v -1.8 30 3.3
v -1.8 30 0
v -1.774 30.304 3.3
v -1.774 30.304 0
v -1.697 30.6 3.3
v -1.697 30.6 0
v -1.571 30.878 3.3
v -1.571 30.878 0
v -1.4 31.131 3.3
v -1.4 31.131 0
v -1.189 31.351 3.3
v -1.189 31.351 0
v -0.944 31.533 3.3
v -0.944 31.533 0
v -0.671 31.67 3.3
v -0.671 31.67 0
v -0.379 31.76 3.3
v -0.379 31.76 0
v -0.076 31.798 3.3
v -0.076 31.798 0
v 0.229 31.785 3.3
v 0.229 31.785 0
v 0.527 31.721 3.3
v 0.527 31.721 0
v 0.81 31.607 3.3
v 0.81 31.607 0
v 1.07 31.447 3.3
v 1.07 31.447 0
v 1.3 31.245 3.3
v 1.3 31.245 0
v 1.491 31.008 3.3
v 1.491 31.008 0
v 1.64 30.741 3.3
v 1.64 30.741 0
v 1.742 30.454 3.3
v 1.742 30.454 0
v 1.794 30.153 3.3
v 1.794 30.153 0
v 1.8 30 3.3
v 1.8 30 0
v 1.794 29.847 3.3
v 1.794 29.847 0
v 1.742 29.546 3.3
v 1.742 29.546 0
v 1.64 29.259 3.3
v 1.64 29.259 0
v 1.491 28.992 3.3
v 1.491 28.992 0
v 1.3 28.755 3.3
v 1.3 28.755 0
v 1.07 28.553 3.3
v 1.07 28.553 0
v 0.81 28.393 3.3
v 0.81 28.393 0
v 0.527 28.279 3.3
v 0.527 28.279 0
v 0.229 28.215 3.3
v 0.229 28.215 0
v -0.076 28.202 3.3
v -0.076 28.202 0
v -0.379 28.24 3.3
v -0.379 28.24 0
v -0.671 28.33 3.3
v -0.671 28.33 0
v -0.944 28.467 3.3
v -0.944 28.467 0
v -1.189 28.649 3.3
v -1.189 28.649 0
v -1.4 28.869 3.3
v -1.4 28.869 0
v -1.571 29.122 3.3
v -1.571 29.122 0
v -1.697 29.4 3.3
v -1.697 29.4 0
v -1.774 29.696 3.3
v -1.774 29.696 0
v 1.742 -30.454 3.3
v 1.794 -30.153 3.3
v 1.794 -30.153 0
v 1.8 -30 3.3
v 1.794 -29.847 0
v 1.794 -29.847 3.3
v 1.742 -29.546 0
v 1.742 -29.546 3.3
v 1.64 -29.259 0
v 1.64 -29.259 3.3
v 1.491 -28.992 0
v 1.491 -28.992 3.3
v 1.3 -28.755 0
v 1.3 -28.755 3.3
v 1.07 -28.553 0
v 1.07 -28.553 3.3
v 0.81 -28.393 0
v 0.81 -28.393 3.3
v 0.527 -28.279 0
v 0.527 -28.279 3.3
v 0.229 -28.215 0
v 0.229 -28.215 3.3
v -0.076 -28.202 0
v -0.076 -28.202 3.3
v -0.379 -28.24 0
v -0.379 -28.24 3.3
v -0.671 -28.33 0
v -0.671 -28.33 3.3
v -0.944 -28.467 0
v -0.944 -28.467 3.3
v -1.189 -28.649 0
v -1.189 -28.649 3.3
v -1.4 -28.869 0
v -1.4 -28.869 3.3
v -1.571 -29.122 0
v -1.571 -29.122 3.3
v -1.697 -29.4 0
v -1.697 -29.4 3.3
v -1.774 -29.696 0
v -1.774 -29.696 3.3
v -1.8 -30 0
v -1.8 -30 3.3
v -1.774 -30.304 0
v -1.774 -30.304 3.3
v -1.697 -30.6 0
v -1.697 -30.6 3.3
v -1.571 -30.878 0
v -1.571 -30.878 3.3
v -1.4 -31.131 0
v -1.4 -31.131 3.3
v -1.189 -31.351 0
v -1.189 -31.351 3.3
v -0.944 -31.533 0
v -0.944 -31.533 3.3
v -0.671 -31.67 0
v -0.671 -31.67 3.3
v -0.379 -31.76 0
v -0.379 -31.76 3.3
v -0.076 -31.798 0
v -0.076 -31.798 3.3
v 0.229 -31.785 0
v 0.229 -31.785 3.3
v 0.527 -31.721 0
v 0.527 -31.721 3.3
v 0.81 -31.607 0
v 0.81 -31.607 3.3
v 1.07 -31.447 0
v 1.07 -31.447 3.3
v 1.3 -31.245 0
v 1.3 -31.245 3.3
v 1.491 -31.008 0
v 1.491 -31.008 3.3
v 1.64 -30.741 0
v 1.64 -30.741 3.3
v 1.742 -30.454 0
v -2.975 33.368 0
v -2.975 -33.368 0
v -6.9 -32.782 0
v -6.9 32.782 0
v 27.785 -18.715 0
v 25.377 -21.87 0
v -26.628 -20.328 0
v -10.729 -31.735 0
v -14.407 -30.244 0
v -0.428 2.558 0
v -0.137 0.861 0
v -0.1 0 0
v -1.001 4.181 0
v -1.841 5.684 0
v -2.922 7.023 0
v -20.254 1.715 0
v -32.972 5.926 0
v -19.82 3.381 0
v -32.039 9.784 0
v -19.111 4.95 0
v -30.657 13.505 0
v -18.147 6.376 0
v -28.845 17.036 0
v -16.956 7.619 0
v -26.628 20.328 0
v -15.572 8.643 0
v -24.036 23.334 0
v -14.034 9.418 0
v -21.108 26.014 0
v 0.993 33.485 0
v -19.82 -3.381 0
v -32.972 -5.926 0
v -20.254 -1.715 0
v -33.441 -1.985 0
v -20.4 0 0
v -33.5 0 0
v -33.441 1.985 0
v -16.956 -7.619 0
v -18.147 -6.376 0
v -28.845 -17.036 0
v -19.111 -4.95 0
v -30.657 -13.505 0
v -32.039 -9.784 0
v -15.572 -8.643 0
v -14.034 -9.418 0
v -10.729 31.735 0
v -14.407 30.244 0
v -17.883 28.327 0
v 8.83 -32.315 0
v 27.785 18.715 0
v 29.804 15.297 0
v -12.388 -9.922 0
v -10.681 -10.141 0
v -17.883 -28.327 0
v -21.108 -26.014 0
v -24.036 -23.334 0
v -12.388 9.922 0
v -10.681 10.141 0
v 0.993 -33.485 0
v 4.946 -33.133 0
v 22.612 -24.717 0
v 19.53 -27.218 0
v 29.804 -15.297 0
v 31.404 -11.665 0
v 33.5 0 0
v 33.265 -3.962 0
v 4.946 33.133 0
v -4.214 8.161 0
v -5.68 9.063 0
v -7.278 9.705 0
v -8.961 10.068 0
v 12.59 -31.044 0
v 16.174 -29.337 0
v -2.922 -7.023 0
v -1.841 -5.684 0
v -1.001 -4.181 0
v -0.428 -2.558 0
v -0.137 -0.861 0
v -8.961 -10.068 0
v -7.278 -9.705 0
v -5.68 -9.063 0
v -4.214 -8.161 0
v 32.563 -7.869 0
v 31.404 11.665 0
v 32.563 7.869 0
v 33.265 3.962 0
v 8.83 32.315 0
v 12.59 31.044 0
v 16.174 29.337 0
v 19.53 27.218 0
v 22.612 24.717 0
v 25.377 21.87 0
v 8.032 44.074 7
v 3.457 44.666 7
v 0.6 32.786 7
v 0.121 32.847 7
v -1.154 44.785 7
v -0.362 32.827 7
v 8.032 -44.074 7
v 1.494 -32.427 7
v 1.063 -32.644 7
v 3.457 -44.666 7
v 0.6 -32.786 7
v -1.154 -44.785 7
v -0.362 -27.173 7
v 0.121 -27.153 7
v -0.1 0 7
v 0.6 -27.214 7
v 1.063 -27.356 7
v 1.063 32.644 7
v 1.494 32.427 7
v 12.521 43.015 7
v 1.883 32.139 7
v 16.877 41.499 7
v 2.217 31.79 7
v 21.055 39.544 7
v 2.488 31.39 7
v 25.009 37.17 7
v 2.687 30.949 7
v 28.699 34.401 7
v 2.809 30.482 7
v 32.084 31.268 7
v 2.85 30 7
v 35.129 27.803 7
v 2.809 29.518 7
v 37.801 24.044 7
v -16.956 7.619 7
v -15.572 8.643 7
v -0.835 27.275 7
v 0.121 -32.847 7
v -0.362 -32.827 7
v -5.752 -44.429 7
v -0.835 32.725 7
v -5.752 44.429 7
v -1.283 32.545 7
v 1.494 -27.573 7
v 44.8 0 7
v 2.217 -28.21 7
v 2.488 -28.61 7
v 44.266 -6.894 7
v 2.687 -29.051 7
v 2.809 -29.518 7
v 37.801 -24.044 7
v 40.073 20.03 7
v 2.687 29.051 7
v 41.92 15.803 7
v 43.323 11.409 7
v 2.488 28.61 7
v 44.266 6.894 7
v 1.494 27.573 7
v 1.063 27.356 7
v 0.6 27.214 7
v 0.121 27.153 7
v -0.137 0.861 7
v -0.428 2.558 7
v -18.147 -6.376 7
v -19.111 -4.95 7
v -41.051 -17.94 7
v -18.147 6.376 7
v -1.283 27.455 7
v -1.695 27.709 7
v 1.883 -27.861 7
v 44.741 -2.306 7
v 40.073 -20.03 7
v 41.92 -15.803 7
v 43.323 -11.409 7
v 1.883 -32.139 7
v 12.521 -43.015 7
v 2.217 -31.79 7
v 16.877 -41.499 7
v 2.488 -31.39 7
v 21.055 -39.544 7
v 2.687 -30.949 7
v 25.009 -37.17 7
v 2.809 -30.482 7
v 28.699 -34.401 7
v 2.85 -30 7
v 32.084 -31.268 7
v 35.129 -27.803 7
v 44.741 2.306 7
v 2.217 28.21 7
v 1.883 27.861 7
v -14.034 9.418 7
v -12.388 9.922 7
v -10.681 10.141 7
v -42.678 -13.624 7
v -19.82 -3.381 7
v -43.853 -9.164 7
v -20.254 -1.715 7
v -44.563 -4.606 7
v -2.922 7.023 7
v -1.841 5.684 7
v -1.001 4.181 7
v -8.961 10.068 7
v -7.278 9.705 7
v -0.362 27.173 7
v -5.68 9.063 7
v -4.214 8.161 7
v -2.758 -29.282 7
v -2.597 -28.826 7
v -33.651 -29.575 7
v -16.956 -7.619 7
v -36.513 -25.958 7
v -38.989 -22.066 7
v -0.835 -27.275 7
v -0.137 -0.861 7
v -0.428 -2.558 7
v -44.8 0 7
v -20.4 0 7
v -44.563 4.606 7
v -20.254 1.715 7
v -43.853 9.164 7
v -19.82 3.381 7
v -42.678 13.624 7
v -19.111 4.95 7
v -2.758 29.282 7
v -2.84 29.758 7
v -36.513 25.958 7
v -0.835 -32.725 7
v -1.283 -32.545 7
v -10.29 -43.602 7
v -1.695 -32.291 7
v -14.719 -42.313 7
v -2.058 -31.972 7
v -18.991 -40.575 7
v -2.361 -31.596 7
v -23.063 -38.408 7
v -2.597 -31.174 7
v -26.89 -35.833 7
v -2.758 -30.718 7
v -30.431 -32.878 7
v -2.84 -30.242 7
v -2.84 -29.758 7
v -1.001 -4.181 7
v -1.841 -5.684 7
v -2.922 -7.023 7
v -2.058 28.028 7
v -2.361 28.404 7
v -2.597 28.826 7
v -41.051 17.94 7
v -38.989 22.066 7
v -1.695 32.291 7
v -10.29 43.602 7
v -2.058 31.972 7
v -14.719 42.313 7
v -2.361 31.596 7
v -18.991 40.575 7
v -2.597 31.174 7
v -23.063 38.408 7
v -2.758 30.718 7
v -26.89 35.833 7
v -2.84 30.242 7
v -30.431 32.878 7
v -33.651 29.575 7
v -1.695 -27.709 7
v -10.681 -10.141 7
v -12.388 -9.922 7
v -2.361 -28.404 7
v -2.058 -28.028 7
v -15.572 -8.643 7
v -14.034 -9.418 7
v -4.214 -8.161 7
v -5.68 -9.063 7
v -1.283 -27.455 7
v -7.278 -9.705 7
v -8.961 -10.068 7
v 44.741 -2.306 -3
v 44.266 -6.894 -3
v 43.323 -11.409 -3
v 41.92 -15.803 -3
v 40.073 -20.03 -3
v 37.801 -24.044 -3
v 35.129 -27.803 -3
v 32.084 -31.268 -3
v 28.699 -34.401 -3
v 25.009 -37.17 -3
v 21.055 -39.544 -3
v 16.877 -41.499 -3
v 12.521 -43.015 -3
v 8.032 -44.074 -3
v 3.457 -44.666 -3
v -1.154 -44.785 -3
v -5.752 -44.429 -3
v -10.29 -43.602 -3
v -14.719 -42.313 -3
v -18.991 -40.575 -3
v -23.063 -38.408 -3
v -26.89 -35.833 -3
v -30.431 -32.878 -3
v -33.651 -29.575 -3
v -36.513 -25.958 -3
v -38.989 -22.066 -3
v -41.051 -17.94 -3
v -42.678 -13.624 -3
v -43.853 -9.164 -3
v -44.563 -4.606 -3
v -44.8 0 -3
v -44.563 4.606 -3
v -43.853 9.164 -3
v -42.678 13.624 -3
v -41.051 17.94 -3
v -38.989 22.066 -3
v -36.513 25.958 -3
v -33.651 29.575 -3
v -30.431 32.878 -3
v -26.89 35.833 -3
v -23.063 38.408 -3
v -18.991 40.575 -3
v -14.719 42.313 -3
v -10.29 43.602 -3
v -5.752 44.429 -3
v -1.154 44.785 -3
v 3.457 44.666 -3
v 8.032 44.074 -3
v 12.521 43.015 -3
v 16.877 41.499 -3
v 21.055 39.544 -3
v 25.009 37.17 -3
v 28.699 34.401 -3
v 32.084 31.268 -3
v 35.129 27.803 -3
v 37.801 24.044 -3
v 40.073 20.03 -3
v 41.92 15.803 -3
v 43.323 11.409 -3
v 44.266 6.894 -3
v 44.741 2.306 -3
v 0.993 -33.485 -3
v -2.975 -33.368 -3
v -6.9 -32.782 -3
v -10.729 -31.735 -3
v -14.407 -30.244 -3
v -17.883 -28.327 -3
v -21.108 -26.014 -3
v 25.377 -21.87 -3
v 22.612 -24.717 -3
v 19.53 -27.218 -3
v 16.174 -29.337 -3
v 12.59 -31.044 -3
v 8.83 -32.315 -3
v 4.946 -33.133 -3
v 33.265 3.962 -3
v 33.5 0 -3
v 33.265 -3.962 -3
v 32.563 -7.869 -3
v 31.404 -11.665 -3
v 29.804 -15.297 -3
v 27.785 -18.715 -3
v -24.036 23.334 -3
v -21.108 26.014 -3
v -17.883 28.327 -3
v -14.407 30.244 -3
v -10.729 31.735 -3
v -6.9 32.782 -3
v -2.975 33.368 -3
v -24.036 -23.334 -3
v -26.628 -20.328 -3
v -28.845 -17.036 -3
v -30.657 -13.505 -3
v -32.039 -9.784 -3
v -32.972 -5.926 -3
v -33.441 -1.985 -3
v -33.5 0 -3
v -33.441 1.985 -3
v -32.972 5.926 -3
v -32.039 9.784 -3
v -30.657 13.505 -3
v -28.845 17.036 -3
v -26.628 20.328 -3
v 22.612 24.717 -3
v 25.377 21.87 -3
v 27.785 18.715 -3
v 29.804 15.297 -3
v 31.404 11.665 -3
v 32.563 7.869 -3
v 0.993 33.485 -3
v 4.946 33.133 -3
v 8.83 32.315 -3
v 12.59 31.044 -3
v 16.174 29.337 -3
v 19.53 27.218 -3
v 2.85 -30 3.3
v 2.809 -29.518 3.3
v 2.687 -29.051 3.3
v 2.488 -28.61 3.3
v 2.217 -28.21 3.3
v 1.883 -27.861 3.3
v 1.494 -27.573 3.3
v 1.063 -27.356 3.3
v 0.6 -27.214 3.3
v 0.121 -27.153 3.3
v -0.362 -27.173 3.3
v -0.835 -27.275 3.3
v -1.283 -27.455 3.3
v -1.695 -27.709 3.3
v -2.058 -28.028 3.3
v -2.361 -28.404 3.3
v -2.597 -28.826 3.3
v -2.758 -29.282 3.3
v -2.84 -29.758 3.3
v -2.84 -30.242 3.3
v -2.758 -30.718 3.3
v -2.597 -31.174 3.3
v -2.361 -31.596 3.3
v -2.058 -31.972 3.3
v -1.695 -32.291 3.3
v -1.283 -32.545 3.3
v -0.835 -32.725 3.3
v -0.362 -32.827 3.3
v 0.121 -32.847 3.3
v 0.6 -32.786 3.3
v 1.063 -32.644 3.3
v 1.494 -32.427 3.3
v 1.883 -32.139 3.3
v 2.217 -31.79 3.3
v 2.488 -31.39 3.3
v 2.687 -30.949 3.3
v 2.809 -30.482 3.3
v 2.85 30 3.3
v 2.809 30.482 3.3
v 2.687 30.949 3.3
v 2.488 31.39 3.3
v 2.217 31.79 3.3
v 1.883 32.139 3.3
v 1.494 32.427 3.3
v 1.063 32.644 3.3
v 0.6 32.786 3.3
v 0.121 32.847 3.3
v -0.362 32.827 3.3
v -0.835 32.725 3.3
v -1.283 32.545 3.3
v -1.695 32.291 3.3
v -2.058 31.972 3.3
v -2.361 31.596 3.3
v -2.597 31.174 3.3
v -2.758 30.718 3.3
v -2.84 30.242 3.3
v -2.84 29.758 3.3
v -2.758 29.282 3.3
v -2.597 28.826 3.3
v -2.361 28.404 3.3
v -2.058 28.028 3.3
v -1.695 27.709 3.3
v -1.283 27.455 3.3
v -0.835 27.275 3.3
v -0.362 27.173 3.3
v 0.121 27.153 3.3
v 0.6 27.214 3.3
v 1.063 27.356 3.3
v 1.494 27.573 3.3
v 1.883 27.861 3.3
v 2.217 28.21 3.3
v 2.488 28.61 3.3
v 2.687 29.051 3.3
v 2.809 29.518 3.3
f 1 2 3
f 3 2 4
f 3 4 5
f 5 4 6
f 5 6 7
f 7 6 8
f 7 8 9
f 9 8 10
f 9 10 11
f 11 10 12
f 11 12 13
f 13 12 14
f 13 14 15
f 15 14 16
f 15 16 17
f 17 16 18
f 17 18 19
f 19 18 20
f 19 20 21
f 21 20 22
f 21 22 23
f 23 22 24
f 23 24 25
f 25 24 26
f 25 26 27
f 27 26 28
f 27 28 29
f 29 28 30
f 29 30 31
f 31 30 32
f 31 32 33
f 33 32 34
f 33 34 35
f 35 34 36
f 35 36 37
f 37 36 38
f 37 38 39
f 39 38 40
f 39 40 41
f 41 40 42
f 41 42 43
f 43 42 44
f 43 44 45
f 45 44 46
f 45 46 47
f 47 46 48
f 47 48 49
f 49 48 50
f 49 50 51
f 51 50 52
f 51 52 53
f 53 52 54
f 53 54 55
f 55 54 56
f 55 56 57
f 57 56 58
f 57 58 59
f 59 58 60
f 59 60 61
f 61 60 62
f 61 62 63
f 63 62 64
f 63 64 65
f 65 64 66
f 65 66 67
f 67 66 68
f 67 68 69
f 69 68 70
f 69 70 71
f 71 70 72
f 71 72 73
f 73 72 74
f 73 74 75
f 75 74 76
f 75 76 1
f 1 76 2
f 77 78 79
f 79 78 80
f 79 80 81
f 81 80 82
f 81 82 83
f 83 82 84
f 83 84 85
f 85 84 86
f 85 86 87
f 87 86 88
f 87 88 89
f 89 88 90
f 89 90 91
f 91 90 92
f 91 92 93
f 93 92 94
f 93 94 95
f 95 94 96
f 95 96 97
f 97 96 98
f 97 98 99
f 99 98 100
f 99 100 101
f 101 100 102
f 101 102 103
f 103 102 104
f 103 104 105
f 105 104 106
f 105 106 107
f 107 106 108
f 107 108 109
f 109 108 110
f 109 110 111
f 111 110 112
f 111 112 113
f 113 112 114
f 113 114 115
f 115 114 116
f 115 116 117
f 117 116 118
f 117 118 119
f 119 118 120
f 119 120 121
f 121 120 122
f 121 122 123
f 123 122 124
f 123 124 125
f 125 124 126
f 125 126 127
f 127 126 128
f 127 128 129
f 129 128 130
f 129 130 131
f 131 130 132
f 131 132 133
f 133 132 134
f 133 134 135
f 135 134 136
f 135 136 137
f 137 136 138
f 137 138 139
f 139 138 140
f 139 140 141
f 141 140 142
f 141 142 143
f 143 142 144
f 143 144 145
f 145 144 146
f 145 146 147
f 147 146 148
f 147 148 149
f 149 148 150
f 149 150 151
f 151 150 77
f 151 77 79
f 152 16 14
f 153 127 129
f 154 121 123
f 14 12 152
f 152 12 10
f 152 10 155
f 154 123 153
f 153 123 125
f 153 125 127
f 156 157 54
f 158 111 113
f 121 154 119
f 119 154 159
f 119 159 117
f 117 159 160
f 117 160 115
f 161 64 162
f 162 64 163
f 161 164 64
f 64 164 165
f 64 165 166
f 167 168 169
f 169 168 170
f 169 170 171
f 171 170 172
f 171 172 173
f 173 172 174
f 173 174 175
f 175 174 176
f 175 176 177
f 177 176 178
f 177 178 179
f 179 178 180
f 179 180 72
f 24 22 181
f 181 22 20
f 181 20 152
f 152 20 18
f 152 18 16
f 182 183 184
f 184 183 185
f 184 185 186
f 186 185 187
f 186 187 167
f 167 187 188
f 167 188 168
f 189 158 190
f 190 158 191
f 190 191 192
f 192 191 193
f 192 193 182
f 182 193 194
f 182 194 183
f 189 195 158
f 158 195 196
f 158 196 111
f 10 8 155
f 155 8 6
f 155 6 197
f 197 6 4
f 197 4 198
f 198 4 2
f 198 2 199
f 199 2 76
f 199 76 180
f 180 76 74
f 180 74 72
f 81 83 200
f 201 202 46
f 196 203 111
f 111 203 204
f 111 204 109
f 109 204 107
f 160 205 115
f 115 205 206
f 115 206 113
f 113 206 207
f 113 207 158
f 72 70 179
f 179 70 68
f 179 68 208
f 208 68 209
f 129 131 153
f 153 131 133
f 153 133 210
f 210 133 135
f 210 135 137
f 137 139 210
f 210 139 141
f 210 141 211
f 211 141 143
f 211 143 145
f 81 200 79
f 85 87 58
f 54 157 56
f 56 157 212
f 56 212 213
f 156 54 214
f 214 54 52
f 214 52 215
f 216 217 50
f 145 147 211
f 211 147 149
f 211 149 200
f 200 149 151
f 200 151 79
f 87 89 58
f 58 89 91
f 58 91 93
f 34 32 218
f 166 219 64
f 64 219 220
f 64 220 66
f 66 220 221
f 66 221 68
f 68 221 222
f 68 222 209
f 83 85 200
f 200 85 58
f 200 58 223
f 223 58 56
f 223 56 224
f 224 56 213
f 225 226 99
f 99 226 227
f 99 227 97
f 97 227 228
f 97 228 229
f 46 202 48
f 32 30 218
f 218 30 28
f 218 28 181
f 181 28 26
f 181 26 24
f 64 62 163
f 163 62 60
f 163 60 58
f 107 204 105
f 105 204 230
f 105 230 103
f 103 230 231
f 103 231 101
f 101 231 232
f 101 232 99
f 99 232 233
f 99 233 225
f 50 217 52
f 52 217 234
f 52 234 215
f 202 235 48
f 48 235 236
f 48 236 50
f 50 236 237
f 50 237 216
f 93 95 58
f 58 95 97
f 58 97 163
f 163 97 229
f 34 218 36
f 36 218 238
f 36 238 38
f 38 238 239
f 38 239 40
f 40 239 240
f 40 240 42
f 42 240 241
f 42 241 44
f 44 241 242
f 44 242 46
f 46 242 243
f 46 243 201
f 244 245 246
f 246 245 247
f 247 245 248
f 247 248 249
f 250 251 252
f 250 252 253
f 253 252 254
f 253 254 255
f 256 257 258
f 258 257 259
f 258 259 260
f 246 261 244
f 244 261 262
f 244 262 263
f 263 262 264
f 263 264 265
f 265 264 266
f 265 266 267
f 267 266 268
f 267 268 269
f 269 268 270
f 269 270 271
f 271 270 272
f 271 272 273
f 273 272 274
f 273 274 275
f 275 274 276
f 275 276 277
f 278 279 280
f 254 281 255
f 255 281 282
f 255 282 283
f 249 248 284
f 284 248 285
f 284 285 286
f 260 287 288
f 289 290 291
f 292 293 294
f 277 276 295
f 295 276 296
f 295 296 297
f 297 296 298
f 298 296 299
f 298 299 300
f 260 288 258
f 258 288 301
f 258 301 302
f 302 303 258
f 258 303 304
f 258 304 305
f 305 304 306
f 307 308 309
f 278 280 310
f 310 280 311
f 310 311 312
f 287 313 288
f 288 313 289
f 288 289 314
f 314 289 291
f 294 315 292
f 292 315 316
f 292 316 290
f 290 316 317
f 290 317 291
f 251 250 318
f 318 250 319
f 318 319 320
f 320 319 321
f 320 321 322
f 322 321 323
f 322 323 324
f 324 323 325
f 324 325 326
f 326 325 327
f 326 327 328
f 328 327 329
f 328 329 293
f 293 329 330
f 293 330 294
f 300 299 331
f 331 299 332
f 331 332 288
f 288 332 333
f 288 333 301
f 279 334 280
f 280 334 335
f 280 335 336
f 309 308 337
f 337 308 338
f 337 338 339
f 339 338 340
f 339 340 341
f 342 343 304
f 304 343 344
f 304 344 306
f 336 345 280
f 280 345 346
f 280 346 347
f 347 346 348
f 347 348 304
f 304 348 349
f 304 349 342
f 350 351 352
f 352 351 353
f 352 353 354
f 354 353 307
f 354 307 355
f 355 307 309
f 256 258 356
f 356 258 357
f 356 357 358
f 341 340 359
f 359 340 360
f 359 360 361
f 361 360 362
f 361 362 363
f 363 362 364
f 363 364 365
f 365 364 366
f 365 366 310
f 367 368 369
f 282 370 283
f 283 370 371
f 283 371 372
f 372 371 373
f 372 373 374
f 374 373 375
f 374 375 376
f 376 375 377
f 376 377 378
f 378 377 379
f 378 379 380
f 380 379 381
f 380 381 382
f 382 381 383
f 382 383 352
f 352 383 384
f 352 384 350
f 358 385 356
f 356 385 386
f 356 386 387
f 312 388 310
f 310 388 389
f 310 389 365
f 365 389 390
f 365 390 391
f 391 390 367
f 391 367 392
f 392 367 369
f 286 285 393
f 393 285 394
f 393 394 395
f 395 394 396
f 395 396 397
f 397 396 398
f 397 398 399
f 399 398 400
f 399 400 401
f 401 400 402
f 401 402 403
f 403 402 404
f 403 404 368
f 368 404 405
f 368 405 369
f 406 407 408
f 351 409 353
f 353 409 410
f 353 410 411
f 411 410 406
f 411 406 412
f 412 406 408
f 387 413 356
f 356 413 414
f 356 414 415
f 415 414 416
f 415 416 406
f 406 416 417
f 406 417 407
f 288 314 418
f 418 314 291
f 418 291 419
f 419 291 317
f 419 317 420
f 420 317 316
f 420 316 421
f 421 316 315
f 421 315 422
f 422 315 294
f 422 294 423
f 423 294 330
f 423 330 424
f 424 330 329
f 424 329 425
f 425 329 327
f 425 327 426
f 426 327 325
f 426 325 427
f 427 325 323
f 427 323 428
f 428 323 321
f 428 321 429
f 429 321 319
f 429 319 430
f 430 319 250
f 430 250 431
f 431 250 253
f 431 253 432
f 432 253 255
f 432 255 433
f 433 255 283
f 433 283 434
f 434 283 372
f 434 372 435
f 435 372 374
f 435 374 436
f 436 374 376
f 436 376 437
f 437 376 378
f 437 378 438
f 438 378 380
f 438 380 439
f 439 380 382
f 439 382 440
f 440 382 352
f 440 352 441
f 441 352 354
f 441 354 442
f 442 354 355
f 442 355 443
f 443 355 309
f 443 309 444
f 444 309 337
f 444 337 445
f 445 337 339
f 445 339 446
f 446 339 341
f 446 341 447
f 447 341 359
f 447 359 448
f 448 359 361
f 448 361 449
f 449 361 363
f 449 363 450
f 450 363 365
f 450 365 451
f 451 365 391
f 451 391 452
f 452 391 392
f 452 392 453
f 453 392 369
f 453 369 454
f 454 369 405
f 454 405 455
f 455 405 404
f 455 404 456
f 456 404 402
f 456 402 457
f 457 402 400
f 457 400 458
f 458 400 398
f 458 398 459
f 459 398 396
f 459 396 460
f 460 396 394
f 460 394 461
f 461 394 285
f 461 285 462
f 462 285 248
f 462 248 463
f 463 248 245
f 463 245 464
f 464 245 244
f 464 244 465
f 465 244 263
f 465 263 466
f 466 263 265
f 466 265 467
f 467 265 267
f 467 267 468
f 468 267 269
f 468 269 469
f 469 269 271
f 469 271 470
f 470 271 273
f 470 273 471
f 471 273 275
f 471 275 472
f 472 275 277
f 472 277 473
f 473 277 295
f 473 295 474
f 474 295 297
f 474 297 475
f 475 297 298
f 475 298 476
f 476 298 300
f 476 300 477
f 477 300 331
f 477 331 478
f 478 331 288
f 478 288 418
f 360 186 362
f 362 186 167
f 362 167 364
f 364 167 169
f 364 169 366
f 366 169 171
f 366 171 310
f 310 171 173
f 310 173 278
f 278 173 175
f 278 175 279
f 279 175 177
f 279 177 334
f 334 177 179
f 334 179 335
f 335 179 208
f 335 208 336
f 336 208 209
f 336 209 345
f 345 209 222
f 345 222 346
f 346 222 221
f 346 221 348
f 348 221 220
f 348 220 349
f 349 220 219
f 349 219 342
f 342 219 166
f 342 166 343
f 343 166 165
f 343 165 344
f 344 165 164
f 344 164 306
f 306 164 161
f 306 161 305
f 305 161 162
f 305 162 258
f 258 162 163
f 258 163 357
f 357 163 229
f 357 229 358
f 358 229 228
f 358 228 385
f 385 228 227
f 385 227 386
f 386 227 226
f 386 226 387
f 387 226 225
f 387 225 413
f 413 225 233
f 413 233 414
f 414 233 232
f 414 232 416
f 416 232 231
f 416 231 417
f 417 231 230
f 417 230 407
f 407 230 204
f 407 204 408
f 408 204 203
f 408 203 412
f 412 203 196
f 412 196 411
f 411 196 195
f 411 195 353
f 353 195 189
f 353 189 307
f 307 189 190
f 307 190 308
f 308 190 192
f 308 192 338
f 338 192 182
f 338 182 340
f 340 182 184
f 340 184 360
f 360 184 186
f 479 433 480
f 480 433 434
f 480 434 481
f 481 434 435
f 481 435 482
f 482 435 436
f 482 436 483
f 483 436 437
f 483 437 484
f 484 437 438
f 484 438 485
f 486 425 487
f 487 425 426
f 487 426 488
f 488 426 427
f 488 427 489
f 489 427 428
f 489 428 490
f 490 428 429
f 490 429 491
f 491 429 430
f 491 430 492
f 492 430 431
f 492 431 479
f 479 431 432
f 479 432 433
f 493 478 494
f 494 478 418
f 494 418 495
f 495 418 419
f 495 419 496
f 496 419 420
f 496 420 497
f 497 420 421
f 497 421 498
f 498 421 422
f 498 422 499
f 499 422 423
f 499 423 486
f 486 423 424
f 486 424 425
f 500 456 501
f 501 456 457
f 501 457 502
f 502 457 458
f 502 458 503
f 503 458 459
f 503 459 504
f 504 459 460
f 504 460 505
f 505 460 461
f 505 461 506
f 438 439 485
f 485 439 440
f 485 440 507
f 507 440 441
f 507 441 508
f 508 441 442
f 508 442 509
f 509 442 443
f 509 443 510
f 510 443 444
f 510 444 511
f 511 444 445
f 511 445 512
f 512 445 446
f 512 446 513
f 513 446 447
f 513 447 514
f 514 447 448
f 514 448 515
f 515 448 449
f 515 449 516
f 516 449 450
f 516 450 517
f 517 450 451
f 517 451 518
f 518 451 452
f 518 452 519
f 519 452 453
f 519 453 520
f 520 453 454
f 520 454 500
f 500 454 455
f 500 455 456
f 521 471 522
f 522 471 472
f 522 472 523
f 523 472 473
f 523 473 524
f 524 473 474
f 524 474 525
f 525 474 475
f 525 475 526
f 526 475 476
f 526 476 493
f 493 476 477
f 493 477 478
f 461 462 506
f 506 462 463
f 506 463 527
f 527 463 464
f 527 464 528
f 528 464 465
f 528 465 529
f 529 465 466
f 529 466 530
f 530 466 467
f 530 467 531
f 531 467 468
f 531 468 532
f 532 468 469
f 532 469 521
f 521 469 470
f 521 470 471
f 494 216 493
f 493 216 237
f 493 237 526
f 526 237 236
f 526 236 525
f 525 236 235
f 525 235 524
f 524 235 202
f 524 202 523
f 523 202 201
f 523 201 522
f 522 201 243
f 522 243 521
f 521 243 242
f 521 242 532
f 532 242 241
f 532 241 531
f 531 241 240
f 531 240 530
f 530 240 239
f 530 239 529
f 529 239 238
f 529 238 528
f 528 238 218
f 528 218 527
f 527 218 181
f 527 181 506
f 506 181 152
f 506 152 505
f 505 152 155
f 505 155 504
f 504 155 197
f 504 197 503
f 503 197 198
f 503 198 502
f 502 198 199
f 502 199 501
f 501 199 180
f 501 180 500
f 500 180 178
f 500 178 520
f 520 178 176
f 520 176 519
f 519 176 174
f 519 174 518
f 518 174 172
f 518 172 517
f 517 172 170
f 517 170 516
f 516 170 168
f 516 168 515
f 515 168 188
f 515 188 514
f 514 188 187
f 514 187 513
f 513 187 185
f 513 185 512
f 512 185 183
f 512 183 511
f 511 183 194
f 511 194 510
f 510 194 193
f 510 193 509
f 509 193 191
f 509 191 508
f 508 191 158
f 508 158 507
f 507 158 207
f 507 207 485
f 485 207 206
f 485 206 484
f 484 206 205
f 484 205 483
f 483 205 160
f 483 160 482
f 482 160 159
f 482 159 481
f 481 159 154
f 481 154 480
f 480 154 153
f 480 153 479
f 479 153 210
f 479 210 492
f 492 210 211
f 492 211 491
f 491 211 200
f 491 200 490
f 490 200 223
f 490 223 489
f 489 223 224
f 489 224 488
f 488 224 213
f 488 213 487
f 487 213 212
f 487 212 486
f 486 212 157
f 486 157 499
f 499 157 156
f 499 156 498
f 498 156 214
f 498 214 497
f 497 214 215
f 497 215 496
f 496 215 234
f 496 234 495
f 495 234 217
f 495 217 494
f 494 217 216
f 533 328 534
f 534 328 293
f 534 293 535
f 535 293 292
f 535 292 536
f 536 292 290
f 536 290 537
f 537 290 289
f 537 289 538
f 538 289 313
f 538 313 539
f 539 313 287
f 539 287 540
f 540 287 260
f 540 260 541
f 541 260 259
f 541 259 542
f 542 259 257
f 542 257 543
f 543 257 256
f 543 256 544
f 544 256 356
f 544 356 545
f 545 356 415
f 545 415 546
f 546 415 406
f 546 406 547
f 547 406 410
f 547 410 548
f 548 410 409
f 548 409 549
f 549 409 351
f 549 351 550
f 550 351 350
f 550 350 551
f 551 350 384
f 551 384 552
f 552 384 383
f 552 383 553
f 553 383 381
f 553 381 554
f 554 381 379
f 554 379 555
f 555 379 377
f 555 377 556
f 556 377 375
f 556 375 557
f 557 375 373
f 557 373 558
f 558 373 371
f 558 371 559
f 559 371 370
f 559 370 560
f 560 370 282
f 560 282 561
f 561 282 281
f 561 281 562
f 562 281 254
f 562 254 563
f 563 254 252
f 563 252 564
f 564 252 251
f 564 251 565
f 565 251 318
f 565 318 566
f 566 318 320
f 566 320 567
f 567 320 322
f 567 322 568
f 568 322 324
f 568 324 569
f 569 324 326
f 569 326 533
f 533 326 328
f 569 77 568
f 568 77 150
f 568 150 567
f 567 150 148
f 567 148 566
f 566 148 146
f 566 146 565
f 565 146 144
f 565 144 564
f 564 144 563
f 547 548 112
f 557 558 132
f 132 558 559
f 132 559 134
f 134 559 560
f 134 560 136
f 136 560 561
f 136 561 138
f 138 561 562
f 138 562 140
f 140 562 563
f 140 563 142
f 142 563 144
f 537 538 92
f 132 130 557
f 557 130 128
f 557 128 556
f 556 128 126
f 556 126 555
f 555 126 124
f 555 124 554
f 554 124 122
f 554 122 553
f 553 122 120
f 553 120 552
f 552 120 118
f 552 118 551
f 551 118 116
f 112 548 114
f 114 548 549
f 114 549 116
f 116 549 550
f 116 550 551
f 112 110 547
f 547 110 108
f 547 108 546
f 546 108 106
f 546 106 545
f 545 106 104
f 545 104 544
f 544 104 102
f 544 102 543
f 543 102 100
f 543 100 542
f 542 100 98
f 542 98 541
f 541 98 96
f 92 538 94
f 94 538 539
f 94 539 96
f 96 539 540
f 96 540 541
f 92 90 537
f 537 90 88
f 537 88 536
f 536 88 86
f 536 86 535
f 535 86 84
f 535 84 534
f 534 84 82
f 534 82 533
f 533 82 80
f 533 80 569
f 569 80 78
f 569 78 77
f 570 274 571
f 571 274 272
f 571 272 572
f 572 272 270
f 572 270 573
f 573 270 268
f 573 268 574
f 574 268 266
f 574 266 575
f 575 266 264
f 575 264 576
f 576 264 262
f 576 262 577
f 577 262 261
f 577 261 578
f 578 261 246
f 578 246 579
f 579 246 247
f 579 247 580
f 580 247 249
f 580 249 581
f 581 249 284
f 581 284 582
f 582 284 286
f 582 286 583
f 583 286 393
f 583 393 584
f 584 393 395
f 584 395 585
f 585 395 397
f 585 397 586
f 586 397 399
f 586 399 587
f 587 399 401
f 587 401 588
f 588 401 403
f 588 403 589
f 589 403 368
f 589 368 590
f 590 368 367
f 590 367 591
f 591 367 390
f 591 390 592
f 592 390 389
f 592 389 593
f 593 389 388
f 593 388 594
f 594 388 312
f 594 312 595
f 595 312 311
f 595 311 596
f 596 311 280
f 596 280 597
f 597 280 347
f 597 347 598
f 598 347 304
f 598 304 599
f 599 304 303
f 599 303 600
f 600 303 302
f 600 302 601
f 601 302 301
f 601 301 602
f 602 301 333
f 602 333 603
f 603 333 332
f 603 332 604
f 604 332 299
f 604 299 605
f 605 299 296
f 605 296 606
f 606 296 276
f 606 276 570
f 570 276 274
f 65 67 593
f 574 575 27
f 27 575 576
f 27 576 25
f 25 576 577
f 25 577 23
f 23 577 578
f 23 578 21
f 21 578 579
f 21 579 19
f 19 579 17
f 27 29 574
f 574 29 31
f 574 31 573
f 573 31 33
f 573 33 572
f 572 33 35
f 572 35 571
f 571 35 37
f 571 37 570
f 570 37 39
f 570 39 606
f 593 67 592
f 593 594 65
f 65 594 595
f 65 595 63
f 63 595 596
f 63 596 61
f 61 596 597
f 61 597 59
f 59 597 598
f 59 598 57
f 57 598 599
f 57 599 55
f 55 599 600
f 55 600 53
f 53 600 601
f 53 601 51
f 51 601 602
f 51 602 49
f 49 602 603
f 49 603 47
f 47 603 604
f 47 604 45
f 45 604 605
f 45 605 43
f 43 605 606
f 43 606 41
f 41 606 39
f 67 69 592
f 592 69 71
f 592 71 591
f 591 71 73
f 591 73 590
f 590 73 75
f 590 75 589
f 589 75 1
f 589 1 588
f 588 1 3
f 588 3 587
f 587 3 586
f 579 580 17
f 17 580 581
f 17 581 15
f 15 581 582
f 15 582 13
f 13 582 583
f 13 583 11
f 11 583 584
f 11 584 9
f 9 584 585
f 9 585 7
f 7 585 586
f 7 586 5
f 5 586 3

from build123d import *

# Parameters (mm, degrees)
ESQUISSE1_R             = 44.8
ESQUISSE1_R_2           = 10.15
ESQUISSE1_R_3           = 1.8
BOSS_EXTRU_1_DEPTH      = 7
BOSS_EXTRU_2_START      = 3
ESQUISSE3_R             = 44.8
ESQUISSE3_R_2           = 33.5
BOSS_EXTRU_2_DEPTH      = 3
ESQUISSE4_R             = 2.85
ENL_V_MAT_EXTRU_3_DEPTH = 3.7


with BuildPart() as part:
    # Esquisse1 → Boss.-Extru.1 (new body)
    with BuildSketch(Plane.XY):
        Circle(ESQUISSE1_R)
        with Locations((-10.25, 0)):
            Circle(ESQUISSE1_R_2, mode=Mode.SUBTRACT)
        with Locations((0, 30)):
            Circle(ESQUISSE1_R_3, mode=Mode.SUBTRACT)
        with Locations(Location((0, -30, 0), (0, 0, 180))):
            Circle(ESQUISSE1_R_3, mode=Mode.SUBTRACT)
    extrude(amount=BOSS_EXTRU_1_DEPTH)

    # Esquisse3 → Boss.-Extru.2 (add)
    with BuildSketch(Plane(origin=(0, 0, 0), x_dir=(-1, 0, 0), z_dir=(0, 0, -1)).offset(BOSS_EXTRU_2_START)):
        Circle(ESQUISSE3_R)
        Circle(ESQUISSE3_R_2, mode=Mode.SUBTRACT)
    extrude(amount=-BOSS_EXTRU_2_DEPTH)

    # Esquisse4 → Enlèv. mat.-Extru.3 (cut)
    with BuildSketch(Plane.XY.offset(7)):
        with Locations((0, 30)):
            Circle(ESQUISSE4_R)
        with Locations((0, -30)):
            Circle(ESQUISSE4_R)
    extrude(amount=-ENL_V_MAT_EXTRU_3_DEPTH, mode=Mode.SUBTRACT)


solid = part.part
